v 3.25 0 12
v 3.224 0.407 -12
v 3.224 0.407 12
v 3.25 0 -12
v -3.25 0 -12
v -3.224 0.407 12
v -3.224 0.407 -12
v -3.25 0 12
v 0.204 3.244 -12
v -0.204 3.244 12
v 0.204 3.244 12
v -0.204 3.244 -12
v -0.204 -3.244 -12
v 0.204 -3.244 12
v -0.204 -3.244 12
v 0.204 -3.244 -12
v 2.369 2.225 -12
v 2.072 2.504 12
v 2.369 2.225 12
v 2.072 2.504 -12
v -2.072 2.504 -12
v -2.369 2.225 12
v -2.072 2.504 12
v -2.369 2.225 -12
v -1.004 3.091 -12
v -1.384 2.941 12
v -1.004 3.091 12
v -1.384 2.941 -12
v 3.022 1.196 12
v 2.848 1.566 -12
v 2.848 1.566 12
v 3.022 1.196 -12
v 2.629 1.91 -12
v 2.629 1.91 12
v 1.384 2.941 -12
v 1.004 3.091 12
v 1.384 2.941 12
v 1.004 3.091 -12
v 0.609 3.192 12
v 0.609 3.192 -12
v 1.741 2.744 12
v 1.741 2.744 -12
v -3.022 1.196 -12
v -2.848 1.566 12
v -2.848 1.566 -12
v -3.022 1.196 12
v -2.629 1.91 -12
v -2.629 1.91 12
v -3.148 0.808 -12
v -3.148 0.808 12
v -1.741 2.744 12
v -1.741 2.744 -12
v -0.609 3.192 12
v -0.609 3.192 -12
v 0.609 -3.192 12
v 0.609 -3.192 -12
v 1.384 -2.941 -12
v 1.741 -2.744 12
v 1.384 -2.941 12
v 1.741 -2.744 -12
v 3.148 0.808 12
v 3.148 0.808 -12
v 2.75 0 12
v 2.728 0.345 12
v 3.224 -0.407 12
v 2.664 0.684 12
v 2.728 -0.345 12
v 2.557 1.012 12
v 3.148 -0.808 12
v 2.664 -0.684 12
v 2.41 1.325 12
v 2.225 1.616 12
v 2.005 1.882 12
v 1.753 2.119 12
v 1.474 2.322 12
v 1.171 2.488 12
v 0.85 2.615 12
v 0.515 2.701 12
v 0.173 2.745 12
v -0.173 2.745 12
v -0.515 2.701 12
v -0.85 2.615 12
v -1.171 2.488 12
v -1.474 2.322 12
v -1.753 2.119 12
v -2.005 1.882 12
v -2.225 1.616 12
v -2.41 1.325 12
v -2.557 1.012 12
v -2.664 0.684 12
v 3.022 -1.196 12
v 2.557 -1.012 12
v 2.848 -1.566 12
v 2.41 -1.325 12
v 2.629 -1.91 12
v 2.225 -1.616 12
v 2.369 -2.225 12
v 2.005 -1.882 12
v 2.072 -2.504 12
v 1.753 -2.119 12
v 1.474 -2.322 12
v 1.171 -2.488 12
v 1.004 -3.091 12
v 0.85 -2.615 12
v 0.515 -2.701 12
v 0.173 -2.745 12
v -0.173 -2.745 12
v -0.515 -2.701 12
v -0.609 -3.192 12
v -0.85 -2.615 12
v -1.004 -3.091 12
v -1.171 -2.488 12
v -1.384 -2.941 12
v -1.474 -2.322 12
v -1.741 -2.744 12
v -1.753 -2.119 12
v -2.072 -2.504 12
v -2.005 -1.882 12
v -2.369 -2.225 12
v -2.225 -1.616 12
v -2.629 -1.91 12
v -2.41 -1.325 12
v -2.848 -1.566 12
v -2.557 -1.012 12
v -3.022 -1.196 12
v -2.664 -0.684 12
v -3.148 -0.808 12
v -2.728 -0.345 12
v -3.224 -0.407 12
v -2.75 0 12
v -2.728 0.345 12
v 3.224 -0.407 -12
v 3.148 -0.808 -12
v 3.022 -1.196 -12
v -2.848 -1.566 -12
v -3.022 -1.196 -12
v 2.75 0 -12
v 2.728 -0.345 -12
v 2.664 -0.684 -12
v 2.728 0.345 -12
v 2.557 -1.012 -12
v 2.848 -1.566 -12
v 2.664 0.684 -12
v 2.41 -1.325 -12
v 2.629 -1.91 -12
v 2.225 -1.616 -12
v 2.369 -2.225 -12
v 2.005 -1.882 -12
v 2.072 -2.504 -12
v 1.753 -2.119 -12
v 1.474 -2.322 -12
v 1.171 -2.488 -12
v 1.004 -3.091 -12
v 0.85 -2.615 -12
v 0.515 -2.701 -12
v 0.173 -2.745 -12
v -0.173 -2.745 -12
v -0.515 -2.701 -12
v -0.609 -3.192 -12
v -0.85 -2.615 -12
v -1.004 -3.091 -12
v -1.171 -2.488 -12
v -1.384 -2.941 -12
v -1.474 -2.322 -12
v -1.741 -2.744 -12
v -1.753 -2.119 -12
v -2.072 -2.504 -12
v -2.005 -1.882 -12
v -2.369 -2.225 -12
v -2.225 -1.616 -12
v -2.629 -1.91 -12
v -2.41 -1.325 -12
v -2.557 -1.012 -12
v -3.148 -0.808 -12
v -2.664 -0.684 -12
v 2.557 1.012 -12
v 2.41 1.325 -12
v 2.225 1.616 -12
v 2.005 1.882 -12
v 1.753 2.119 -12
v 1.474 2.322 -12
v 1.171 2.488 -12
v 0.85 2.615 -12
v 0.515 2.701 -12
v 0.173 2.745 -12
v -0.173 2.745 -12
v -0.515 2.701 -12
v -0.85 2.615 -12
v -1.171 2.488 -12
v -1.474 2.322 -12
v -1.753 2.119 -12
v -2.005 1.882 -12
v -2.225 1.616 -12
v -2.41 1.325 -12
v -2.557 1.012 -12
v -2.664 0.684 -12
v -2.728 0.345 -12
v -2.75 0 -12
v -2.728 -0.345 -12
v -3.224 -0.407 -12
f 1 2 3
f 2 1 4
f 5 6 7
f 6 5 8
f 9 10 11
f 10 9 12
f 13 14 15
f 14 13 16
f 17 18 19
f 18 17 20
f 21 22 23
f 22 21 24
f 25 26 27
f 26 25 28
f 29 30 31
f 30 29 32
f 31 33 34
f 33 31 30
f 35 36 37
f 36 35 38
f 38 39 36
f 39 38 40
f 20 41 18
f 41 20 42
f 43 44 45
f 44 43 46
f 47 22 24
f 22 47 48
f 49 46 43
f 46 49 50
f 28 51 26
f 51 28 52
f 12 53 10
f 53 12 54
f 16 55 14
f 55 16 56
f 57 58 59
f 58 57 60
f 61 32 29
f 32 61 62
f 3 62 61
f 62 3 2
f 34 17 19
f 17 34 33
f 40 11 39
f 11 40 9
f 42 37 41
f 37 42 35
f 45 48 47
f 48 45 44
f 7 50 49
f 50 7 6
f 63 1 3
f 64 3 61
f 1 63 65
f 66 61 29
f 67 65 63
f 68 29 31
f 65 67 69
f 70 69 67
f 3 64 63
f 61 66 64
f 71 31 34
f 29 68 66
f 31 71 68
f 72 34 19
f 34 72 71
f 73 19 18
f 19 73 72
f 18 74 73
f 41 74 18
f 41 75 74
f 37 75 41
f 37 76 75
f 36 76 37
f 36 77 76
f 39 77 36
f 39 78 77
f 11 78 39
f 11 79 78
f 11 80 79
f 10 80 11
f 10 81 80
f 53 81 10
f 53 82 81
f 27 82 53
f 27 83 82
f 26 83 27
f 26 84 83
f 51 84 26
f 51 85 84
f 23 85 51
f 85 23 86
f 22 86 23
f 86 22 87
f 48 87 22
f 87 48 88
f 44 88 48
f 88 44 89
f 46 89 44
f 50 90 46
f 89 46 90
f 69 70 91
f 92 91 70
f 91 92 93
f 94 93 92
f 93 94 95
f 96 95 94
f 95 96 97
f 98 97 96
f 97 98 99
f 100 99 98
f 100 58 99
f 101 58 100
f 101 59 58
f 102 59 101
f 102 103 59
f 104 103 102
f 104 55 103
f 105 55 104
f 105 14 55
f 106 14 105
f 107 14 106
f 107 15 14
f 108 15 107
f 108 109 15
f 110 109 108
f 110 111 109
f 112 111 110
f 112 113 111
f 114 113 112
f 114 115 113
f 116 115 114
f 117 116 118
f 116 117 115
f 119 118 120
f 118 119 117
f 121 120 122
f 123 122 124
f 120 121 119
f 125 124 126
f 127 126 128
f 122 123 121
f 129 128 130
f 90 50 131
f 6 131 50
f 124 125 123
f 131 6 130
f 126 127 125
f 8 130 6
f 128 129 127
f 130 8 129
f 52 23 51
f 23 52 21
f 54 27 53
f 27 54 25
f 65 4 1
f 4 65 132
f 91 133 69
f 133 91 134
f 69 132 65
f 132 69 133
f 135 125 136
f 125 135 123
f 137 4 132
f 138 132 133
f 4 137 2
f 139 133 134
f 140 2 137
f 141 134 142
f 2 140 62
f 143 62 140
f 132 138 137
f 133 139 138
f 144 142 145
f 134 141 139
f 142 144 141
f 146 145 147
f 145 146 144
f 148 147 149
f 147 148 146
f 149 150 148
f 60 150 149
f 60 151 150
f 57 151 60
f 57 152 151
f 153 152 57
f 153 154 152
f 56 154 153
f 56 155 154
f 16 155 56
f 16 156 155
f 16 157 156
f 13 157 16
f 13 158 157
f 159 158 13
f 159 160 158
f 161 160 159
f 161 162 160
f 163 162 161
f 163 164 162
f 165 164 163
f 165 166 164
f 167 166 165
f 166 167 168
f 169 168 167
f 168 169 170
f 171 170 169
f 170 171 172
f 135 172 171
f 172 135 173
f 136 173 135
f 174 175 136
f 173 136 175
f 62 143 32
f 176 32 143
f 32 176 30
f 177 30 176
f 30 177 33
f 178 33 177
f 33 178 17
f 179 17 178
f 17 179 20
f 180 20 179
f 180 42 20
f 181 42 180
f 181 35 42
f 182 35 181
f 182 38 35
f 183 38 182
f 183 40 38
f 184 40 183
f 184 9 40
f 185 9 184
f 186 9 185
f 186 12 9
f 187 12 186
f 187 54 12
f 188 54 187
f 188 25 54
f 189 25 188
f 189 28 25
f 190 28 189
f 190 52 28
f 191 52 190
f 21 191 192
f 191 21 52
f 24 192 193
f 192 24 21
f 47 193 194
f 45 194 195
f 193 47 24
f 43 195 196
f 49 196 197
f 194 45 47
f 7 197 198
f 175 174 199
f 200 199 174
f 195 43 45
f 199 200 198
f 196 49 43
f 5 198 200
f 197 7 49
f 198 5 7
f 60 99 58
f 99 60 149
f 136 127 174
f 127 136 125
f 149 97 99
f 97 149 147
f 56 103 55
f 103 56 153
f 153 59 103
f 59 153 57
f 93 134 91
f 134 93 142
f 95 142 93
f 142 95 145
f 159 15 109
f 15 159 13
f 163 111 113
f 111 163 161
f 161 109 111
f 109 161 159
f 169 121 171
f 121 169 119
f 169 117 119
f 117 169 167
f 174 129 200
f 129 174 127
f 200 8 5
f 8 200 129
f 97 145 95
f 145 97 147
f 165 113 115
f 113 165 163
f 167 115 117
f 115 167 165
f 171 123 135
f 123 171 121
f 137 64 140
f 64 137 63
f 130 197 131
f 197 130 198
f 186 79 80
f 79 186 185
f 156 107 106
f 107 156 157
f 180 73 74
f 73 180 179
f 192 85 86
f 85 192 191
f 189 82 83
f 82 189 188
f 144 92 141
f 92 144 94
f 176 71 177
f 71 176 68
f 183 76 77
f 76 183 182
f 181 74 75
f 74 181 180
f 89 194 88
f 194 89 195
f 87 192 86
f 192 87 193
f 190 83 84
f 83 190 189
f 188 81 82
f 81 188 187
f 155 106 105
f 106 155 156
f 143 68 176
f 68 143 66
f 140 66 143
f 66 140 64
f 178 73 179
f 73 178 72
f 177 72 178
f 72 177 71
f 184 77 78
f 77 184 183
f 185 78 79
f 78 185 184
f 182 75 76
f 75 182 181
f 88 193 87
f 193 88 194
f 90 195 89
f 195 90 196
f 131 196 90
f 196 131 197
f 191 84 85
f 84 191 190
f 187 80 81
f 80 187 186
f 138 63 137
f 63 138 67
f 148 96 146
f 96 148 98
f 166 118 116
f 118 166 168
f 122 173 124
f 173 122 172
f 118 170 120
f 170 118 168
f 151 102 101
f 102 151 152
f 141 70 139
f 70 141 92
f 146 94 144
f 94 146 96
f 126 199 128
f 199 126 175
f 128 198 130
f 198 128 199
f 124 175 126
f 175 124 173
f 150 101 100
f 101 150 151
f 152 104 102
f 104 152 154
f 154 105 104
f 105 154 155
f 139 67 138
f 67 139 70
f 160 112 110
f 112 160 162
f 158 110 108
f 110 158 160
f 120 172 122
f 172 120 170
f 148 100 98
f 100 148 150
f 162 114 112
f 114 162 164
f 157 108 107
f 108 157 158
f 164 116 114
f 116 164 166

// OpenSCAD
$fn = 50;


difference() {
	union() {
		translate(v = [0, 0, -12.0000000000]) {
			cylinder(h = 24, r = 3.2500000000);
		}
	}
	union() {
		translate(v = [0, 0, -100.0000000000]) {
			cylinder(h = 200, r = 2.7500000000);
		}
	}
}
